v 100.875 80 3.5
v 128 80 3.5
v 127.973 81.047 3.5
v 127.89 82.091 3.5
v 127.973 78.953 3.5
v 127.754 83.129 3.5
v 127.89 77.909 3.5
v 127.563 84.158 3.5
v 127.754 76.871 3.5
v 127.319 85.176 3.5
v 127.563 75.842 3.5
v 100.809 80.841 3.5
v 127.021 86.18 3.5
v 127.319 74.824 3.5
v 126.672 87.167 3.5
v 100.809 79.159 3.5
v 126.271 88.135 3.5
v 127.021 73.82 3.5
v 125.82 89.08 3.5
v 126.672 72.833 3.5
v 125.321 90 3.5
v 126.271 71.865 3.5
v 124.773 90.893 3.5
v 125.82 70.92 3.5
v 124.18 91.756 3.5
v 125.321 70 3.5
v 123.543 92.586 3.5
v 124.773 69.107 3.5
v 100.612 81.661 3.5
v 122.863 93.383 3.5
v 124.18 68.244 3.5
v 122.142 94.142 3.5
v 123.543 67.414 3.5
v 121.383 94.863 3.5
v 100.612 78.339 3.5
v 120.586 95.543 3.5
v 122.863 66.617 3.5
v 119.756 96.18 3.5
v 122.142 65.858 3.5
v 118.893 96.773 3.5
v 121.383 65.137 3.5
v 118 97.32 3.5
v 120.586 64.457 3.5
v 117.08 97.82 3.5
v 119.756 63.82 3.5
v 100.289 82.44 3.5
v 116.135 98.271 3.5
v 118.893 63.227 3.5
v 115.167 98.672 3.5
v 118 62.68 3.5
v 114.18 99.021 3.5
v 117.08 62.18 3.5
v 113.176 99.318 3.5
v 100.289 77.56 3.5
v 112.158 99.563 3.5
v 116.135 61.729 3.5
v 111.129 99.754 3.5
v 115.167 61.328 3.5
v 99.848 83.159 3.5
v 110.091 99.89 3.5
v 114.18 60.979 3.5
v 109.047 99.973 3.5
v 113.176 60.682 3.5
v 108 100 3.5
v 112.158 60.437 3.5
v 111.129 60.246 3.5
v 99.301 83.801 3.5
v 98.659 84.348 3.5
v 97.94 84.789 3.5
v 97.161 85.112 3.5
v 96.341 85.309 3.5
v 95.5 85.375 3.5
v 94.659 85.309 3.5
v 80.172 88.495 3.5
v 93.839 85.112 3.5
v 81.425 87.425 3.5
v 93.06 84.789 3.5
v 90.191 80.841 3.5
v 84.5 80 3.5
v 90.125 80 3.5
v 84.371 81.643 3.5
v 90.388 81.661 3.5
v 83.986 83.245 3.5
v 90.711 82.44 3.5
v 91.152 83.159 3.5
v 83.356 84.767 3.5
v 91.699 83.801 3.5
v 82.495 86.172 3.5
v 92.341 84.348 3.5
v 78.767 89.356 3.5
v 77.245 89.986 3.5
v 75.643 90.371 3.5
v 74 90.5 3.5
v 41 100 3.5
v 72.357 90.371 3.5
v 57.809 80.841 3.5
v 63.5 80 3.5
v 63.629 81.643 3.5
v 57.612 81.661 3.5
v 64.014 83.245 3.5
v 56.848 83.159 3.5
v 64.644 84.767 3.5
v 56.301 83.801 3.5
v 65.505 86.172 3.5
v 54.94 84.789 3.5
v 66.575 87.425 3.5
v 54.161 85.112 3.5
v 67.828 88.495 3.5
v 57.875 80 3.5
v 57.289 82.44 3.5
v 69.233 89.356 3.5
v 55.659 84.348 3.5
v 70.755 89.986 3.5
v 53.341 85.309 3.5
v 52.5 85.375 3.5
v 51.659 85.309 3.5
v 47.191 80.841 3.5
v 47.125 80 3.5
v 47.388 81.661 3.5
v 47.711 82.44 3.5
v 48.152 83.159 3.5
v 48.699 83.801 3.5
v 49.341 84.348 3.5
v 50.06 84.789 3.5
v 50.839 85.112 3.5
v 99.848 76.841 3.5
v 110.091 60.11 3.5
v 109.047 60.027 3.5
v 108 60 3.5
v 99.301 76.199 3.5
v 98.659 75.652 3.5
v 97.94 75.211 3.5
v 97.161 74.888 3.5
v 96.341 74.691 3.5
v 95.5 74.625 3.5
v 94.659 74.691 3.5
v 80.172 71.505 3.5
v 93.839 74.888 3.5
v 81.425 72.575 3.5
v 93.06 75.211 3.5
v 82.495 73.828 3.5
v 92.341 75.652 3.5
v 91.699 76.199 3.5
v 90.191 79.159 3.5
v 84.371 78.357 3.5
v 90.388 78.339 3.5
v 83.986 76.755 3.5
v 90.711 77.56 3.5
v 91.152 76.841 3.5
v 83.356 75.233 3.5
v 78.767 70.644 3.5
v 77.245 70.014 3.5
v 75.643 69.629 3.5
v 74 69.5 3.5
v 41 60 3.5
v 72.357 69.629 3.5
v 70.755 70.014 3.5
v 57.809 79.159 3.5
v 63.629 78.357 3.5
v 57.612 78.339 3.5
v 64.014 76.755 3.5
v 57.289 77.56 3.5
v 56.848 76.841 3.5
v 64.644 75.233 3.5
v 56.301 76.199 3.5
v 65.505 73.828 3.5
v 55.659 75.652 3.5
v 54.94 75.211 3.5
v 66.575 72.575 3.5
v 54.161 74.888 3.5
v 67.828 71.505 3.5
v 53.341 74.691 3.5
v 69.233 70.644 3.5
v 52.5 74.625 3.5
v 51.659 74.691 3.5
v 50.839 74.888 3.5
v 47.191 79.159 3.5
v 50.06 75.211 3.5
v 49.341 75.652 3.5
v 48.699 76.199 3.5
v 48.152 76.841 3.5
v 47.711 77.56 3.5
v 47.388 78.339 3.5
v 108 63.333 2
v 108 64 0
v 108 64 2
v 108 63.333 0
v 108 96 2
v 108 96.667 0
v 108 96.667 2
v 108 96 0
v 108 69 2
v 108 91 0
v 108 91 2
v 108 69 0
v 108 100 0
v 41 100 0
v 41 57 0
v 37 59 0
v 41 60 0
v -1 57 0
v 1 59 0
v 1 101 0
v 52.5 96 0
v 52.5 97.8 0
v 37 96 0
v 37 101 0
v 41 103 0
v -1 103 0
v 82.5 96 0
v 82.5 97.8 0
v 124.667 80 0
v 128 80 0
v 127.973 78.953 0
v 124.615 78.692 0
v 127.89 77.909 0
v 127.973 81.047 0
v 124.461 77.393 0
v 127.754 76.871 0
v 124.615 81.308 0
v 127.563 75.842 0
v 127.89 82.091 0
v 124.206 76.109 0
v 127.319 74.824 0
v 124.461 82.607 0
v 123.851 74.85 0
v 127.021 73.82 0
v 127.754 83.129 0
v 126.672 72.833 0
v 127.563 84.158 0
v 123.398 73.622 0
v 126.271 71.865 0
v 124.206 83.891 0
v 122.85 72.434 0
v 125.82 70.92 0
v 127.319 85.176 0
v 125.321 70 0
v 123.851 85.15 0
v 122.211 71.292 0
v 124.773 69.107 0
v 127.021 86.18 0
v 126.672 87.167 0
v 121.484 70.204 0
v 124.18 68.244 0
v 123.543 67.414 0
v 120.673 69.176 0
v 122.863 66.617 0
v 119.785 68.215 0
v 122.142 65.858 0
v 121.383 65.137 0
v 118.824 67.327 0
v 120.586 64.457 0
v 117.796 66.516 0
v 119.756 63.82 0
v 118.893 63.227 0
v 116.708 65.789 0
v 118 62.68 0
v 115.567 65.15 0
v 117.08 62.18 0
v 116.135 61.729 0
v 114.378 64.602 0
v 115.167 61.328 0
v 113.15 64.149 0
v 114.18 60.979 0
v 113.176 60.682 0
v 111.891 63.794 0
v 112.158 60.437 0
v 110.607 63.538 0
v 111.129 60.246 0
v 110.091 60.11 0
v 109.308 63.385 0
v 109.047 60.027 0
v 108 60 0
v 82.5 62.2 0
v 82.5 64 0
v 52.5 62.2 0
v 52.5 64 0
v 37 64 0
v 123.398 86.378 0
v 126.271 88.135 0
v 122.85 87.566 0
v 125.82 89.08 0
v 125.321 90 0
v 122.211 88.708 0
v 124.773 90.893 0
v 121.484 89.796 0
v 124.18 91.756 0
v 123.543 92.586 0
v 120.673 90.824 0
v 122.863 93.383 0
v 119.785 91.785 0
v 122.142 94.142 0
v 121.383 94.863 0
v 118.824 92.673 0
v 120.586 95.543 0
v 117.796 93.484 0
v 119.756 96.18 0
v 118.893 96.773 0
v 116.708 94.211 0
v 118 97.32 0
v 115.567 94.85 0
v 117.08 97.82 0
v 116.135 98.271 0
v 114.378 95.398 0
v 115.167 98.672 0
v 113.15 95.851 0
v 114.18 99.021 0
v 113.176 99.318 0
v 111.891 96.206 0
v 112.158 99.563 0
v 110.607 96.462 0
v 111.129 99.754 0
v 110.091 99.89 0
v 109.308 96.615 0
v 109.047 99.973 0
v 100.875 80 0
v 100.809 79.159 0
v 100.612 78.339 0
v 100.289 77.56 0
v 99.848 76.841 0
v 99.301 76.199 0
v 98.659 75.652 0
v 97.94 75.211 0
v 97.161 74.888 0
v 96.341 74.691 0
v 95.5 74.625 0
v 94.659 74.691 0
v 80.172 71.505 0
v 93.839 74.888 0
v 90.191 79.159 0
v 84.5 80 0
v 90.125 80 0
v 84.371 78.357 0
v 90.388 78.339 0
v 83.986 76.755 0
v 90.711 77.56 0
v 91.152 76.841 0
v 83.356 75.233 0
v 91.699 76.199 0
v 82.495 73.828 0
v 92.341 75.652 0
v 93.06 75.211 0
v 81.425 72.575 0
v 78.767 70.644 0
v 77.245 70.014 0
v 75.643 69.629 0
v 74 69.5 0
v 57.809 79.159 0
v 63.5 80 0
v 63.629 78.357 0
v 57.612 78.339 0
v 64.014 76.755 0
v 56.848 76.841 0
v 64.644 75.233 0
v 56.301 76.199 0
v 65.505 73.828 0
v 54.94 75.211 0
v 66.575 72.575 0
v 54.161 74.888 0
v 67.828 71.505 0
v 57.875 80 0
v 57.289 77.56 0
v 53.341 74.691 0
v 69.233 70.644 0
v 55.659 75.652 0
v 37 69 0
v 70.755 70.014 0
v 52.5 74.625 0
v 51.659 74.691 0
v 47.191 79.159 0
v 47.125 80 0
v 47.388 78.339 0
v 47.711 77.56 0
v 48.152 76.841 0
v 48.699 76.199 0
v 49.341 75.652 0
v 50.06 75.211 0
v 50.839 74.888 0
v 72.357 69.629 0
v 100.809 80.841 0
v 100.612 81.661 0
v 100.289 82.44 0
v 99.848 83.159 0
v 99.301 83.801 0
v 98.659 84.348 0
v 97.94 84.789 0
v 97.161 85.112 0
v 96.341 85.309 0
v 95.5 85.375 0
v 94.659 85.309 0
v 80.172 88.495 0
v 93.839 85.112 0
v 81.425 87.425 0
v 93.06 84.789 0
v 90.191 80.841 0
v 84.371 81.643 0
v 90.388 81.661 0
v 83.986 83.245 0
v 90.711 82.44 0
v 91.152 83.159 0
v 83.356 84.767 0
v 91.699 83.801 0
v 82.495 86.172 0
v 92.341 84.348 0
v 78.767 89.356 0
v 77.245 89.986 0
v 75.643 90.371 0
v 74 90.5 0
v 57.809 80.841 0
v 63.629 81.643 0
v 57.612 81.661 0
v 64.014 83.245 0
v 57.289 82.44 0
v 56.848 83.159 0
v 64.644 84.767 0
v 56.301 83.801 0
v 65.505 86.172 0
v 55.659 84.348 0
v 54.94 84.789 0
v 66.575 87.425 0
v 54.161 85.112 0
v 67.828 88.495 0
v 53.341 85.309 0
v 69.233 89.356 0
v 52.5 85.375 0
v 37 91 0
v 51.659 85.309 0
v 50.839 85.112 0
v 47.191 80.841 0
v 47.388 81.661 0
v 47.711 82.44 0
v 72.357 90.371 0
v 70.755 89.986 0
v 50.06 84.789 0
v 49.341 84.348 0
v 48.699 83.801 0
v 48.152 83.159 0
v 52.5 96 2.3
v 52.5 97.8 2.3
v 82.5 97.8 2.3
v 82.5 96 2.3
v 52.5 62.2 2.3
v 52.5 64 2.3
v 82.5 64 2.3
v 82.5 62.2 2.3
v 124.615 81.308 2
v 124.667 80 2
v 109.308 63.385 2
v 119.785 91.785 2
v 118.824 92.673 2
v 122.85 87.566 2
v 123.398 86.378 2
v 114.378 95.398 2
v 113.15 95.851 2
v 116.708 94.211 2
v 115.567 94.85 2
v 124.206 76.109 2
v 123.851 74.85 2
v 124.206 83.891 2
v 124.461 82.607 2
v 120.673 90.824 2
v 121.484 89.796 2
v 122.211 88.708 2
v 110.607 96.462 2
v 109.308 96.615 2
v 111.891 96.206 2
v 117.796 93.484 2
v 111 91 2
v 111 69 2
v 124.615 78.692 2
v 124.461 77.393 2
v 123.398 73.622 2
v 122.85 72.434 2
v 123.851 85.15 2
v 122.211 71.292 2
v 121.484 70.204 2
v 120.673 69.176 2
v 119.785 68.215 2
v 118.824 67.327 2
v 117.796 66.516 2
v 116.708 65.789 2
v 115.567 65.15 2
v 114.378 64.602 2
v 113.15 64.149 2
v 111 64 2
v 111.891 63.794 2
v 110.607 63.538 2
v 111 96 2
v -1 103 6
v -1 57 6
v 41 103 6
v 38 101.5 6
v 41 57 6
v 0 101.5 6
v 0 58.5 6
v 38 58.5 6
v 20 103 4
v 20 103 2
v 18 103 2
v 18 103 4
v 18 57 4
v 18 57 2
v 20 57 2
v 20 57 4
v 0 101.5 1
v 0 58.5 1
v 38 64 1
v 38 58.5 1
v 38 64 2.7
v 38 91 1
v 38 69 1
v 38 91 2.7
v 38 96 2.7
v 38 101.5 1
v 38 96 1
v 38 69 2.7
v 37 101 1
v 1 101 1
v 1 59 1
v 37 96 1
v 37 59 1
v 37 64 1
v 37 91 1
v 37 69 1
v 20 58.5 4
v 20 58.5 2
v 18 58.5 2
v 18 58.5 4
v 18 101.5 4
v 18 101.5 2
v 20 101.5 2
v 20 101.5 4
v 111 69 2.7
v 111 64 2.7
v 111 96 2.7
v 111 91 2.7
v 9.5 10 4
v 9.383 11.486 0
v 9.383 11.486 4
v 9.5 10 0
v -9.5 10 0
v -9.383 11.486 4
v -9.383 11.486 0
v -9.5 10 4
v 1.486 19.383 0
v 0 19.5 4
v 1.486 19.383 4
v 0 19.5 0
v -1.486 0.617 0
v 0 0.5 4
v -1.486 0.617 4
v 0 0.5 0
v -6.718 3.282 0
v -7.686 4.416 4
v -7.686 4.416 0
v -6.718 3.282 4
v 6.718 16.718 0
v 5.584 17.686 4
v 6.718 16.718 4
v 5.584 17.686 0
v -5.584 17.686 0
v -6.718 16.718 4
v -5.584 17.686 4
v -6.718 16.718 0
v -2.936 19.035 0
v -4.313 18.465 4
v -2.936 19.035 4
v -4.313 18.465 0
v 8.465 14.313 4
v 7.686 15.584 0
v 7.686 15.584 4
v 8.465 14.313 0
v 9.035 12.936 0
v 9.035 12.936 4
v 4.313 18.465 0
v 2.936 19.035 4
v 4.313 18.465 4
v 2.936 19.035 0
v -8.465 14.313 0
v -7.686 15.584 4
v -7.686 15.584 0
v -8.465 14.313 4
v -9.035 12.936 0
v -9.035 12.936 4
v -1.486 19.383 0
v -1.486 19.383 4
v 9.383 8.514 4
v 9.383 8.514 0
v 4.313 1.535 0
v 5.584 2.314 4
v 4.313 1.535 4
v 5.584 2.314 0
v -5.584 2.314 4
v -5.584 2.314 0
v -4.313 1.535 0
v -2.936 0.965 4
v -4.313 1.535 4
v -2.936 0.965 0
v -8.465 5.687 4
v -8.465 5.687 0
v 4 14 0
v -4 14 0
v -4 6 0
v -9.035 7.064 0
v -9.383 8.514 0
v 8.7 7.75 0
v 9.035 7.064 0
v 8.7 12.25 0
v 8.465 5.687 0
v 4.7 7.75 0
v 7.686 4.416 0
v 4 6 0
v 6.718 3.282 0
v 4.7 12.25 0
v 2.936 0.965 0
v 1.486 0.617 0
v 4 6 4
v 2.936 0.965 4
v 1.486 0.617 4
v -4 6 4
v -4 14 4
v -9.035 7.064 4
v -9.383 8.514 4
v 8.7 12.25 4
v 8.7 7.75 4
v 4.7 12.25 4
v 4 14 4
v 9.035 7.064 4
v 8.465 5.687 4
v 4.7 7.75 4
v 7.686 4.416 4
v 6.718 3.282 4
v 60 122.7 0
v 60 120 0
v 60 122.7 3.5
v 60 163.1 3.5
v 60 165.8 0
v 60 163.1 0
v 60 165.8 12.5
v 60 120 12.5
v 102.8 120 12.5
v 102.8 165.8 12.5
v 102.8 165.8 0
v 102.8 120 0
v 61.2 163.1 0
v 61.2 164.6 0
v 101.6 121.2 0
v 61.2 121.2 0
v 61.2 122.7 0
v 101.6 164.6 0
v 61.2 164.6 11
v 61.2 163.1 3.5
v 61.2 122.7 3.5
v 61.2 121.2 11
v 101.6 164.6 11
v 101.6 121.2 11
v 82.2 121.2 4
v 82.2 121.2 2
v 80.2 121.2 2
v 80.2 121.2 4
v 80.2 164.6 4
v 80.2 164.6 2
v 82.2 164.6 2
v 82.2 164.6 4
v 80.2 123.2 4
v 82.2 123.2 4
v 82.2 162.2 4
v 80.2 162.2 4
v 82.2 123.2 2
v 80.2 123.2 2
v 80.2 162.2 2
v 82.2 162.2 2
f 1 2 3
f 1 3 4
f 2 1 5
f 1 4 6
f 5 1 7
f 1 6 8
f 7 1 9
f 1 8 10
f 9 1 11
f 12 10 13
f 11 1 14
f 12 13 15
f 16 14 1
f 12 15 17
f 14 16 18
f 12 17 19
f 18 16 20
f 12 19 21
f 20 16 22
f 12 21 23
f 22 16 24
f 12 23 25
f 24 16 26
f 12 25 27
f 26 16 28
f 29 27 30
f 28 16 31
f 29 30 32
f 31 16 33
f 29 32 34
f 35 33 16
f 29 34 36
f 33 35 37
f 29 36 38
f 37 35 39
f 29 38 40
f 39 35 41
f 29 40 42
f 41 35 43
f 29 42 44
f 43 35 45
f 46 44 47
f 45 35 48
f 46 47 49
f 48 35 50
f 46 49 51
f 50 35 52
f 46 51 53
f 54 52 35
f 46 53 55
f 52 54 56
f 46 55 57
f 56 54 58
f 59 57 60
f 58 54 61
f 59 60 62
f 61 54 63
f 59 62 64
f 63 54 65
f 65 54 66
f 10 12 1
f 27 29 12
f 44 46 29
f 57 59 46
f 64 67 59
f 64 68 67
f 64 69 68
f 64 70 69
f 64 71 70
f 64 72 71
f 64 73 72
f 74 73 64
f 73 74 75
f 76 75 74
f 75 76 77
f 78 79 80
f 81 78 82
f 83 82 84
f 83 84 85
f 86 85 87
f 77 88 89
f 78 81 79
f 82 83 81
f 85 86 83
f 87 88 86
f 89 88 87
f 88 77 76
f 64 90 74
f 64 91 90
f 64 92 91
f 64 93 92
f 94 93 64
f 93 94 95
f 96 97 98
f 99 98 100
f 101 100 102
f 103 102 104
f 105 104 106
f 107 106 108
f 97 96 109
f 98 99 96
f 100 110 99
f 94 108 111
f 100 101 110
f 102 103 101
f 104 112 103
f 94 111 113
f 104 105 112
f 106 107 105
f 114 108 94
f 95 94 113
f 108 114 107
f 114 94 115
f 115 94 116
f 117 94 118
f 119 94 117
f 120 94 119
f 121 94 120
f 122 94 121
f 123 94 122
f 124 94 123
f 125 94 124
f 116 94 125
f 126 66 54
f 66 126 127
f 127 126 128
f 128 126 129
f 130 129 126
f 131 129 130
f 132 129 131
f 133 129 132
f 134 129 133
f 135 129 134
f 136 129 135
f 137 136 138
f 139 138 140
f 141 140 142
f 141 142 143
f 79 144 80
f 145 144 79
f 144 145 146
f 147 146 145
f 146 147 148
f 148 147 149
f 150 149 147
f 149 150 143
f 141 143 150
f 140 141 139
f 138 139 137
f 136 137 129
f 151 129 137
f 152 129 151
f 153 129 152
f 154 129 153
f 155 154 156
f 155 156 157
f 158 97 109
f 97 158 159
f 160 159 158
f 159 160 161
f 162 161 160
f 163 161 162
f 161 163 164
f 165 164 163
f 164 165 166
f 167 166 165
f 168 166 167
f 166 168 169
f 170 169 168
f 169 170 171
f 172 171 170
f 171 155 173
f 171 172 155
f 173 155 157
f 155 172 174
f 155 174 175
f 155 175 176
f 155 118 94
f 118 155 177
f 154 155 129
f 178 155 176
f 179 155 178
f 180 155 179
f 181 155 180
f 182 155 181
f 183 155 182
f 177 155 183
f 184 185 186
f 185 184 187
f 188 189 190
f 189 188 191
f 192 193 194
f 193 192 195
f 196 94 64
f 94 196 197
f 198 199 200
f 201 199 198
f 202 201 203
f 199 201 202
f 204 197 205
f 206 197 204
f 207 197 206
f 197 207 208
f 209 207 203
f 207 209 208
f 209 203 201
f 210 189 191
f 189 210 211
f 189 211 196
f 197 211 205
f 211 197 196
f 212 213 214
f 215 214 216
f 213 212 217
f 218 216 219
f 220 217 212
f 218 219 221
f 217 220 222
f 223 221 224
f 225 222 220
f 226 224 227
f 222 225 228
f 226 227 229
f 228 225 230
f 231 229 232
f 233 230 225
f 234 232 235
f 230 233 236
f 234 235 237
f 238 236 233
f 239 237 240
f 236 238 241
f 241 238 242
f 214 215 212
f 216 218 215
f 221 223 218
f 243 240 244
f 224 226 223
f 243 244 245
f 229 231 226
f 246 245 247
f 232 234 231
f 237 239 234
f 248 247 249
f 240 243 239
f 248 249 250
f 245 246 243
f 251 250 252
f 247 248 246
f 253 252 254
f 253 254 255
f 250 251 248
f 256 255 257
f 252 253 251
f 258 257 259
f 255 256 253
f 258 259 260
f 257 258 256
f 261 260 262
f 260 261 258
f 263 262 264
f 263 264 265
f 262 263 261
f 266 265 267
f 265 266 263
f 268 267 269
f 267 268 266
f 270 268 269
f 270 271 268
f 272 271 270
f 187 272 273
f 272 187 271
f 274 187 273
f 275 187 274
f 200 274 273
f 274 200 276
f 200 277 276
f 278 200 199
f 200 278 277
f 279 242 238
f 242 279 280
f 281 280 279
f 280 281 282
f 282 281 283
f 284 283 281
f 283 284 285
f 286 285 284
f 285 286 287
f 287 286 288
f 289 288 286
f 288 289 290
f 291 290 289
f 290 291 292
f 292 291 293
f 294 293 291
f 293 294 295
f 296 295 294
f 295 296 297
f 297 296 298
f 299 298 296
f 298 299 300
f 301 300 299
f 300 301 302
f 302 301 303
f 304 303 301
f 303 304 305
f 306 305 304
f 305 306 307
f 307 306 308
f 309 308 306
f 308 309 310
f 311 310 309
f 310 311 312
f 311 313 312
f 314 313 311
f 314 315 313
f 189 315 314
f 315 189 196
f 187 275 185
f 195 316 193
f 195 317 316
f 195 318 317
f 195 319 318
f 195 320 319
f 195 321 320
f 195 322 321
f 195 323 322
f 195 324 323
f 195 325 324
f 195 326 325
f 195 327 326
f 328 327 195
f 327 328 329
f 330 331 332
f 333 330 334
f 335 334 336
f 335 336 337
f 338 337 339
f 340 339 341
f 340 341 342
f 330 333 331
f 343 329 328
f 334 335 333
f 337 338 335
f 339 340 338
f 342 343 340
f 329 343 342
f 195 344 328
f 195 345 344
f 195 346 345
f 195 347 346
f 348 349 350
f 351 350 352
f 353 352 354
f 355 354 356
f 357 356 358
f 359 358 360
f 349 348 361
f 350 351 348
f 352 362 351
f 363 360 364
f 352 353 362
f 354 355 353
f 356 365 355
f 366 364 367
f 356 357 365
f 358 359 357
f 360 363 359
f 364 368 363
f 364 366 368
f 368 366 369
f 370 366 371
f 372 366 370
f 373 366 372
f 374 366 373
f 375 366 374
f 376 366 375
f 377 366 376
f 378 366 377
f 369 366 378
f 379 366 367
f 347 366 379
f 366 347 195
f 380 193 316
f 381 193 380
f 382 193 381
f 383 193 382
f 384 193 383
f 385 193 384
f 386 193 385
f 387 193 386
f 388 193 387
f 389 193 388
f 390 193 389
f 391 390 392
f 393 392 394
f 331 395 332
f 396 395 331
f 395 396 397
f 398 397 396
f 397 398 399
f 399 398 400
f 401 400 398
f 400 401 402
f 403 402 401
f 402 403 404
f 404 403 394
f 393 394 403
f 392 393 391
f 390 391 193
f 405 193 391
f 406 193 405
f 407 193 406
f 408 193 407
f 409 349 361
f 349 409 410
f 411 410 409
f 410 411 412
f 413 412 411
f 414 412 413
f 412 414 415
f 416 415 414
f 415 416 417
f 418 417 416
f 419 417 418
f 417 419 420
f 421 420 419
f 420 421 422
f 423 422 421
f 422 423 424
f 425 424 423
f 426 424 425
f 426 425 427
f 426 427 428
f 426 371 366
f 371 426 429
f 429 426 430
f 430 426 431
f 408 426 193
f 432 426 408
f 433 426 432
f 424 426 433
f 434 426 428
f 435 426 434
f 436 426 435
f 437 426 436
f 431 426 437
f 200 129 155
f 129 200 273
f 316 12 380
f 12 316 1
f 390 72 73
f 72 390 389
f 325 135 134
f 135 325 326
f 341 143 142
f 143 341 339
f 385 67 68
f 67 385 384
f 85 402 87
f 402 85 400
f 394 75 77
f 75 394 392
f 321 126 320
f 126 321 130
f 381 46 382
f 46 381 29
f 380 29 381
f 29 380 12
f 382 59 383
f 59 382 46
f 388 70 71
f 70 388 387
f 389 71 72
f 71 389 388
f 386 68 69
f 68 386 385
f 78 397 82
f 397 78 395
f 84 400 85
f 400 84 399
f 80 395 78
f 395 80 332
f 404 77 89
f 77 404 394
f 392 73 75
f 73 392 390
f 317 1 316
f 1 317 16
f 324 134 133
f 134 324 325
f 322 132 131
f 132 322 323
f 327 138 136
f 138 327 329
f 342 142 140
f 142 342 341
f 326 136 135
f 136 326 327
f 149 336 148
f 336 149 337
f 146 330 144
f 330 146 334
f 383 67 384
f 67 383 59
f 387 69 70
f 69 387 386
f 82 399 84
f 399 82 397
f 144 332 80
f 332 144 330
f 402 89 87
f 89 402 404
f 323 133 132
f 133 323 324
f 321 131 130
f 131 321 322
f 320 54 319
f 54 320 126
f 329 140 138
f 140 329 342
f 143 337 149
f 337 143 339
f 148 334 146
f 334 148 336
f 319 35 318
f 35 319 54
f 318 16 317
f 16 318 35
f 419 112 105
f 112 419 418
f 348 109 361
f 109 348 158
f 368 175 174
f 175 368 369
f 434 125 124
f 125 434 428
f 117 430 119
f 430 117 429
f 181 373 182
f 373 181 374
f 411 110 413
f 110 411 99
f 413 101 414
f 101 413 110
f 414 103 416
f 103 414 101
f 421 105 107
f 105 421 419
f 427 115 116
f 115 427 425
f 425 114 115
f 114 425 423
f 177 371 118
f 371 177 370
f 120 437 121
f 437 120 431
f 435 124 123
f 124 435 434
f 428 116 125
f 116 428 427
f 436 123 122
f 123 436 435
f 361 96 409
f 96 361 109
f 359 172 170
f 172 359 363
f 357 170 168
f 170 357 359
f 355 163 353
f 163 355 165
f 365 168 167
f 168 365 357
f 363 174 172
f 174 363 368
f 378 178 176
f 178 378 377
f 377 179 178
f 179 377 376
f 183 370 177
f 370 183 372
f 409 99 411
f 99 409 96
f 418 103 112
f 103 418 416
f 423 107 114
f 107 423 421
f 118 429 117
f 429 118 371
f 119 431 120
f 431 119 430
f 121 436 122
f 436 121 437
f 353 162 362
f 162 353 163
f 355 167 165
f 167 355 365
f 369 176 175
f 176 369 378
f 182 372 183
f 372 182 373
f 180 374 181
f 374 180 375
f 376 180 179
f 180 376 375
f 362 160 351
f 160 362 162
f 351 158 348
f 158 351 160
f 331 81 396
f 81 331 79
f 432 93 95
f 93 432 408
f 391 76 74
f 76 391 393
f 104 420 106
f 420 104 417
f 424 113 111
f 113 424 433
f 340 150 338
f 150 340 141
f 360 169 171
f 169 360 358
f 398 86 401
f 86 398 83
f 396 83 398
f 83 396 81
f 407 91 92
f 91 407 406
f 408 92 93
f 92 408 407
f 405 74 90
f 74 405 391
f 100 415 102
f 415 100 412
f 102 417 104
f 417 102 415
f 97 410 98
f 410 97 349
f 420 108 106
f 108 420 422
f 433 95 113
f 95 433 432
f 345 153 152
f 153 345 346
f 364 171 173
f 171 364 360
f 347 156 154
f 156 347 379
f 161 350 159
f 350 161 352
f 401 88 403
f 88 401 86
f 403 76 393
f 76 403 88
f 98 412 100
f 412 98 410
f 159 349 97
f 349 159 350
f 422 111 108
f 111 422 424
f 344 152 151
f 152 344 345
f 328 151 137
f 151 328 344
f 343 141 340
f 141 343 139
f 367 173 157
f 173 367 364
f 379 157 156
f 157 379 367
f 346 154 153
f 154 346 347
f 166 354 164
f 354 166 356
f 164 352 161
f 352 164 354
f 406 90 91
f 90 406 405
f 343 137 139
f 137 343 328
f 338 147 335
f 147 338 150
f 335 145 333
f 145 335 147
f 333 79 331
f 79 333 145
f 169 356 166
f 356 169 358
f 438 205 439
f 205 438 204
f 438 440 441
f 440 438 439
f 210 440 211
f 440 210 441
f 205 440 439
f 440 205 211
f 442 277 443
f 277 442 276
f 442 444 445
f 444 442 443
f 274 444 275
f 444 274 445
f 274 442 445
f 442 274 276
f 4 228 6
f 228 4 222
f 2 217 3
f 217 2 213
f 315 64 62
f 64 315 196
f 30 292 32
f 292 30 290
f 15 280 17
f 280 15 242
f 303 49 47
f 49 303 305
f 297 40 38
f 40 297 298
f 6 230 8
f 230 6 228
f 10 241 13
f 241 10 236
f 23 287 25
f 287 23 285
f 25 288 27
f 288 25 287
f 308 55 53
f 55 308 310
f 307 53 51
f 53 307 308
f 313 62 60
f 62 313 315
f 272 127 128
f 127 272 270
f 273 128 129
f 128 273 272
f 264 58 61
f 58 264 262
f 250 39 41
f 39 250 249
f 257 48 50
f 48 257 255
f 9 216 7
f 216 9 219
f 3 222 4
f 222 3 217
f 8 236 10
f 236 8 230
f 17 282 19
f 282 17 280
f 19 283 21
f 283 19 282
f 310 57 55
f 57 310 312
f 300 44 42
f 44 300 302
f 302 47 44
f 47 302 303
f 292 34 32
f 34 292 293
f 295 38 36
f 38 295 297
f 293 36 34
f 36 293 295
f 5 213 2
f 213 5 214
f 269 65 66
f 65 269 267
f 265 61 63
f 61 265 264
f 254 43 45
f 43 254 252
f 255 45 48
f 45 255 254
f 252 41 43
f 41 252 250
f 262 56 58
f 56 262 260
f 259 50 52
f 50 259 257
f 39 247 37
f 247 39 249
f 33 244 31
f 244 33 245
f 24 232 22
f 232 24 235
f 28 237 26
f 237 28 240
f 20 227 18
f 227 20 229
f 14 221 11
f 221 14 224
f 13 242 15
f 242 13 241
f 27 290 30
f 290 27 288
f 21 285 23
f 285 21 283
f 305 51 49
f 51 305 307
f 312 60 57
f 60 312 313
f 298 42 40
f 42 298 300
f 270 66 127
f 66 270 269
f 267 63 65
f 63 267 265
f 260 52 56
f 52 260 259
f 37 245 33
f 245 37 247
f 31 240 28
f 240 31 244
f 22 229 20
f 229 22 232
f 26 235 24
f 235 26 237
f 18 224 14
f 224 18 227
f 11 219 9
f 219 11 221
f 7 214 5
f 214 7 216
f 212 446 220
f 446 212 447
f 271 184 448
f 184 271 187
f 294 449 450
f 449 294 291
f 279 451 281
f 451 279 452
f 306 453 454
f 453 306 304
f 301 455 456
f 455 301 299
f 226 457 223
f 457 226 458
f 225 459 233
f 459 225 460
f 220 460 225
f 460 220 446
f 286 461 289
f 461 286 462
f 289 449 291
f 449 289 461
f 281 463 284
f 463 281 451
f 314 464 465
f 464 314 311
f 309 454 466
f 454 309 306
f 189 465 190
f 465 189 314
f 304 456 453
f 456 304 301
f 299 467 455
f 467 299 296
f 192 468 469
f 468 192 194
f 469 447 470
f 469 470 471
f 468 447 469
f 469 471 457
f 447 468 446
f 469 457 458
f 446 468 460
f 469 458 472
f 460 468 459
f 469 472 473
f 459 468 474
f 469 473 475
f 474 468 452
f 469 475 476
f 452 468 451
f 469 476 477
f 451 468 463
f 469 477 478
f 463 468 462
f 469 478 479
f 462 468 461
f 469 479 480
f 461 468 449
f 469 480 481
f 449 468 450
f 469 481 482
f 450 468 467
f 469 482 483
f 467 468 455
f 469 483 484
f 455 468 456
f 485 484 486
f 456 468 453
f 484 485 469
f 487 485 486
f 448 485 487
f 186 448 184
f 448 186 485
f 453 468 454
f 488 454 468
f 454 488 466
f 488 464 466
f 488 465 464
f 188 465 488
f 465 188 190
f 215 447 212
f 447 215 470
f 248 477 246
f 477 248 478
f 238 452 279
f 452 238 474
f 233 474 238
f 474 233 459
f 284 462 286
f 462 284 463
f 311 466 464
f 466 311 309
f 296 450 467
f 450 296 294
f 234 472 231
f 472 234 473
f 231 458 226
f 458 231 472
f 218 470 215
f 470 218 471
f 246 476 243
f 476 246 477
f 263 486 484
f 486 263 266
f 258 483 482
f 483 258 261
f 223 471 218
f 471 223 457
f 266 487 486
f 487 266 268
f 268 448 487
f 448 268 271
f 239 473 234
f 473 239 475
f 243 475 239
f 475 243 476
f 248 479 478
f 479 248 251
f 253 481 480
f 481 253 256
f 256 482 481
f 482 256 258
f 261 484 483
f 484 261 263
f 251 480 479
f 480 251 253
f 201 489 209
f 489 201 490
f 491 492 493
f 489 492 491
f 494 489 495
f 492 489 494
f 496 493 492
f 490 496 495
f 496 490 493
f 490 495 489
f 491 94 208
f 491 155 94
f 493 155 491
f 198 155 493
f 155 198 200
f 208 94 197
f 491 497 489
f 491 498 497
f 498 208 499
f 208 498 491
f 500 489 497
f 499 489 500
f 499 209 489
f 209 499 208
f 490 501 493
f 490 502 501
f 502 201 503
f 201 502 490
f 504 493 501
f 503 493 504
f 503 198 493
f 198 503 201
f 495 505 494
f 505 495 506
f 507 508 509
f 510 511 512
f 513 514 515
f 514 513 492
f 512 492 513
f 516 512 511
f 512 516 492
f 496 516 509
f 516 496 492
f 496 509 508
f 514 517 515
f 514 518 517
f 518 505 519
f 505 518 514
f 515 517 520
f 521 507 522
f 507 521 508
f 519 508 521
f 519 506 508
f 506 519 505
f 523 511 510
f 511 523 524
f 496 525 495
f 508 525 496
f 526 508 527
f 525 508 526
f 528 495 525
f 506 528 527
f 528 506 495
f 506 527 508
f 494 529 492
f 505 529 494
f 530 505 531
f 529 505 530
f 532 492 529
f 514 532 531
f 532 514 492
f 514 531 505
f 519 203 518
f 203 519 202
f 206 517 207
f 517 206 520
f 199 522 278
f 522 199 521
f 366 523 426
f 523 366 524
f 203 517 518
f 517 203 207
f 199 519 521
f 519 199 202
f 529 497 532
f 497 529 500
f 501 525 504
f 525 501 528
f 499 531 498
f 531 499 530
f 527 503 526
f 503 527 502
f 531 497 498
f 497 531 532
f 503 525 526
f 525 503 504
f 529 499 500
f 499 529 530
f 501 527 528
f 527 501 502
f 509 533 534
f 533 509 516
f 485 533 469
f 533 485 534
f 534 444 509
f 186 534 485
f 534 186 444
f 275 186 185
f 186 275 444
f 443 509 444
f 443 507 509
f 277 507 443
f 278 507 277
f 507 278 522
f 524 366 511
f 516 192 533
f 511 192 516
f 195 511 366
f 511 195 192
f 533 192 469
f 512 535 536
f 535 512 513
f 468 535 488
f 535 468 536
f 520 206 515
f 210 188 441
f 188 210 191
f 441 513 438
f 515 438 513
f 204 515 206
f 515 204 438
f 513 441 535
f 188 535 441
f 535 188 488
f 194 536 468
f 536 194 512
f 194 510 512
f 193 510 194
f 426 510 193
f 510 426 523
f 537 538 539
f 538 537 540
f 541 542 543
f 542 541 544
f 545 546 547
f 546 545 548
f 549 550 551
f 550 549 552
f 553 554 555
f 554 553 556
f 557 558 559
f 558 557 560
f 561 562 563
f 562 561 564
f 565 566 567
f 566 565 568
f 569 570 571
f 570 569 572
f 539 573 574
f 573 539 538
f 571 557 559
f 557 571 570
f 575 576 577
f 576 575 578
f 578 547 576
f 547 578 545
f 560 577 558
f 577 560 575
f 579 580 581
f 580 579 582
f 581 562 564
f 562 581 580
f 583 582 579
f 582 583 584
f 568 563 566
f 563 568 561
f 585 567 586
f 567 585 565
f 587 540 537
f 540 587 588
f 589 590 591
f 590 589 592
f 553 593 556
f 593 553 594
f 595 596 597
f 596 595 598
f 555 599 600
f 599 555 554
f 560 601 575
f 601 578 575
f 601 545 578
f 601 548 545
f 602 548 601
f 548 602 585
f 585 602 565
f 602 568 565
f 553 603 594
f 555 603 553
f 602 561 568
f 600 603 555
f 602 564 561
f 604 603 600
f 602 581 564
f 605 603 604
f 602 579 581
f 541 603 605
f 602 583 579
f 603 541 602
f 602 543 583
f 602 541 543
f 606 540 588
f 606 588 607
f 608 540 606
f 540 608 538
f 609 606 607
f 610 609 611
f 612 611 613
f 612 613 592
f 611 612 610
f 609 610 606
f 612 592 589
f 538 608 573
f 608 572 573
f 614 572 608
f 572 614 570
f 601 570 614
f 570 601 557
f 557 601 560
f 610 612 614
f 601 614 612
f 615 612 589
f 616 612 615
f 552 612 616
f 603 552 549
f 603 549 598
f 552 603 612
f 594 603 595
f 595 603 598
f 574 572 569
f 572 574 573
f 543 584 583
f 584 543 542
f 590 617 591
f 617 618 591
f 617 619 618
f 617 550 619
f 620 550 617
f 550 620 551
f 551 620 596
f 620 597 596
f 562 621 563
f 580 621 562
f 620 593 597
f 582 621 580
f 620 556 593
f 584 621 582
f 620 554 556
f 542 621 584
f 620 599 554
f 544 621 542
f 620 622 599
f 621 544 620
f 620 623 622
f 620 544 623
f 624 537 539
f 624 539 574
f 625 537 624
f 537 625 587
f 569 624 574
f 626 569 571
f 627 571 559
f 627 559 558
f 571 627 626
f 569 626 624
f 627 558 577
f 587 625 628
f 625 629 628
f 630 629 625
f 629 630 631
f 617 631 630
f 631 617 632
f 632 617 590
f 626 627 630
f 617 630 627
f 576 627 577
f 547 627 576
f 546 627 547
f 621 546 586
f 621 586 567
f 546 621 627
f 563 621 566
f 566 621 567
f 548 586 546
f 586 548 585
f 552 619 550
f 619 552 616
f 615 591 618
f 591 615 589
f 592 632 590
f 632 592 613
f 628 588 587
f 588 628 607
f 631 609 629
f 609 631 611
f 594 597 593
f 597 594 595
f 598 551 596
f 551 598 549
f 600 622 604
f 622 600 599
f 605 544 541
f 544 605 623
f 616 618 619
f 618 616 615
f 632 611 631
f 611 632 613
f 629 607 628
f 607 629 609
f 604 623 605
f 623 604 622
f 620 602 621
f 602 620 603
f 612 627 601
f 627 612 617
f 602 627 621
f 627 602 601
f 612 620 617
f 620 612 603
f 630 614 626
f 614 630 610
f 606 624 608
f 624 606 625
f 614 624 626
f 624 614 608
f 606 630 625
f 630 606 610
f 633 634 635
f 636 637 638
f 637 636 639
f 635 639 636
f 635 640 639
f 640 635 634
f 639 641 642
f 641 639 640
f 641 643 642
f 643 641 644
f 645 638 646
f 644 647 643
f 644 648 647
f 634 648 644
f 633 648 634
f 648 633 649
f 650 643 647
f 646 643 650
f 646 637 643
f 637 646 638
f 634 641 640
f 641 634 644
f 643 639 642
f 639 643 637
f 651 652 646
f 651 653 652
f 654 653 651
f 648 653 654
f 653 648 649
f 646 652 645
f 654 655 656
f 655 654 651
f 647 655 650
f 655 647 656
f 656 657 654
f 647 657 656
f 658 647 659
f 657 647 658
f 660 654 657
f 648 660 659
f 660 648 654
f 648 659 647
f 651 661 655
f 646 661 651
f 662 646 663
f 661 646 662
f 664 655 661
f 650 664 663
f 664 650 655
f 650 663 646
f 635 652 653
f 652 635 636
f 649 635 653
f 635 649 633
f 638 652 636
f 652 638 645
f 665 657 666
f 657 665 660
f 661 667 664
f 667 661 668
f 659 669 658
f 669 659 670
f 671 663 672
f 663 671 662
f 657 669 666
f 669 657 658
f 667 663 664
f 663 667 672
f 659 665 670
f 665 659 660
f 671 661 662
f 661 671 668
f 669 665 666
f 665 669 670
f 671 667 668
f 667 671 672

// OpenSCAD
VIERKANT = 7.5;
BREITE = 40;
HOEHE = 68;
BOHRUNGEN = 10.75;

module inlay() {
	difference(){
		cylinder($fn=40, h=4, r=((32/2) - 6.5));
		cube([(VIERKANT + 0.5), (VIERKANT + 0.5), 10], center=true);
		translate([(((32/2)-6)- 3.3), 0, 0]) {
			cube([4, 4.5, 10], center=true);
		}
	}
}

module box() {
    difference() {
        cube([HOEHE, BREITE, 3.5]);
        // Bohrung unten
		translate([(HOEHE - ((HOEHE - 43) / 2)), (BREITE / 2), -1]) {
			cylinder($fn=40 ,h=7, r=(BOHRUNGEN / 2));
		}       
        // Bohrung oben
		translate([((HOEHE - 43) / 2), (BREITE / 2), -1]) {
			cylinder($fn=40, h=6, r=(BOHRUNGEN / 2));
		}
        // Mitte
        translate([((43/2)+((HOEHE-43)/2)),(BREITE/2),-1]) {
			cylinder($fn=40, h=10, r=10.5);
		}
        //Reed Contact
        translate([ (HOEHE-43)/2, (BREITE - 2.2 - 3), -1]) {
            cube([30, 3, 3.3]);
		}
        //Reed Contact
        translate([ (HOEHE-43)/2, 2.2, -1]) {
			cube([30, 3, 3.3]);
		}
    }
}


translate([40, 60, 0]) {
    difference() {
        union() {
            box();
            // Rundung oben
            translate([HOEHE, BREITE / 2, 0]) {
                difference() {
                    cylinder($fn=120, r=BREITE / 2 , h=3.5);
                    translate([-BREITE, - BREITE / 2,-1]) cube([BREITE, BREITE, 10]);
                    translate([0, 0, -1]) cylinder($fn=80, r=BREITE / 2.4 , h=3);
                }
            }
            translate([-41, -3, 0]) {
                difference() {
                    cube([42, 46, 6]);
                    translate([1, 1.5, 1]) {
                        cube([38, 43, 10]);
                    }
                    translate([2, 2, -1]) {
                        cube([36, 42, 5]);
                    }
                    translate([40/2 +1 , -10, 2]) {
                        rotate([0, 0, 90]) cube([60, 2, 2]);
                    }
                }
            }
        }
        translate([-4, 4, -1]) {
            cube([75, 5, 3.7]);
        }
        translate([-4, 31, -1]) {
            cube([75, 5, 3.7]);
        }
    }
    
}


translate([0, 10, 0]) {
    inlay();
}



module deckel() {
    D_BREITE = 40;
    D_HOEHE = 43;
    D_TIEFE = 11;

    union() {
        difference() {
            cube([D_BREITE + 2.8, D_HOEHE  + 2.8,  D_TIEFE + 1.5]);
            translate([1.2, 1.2, 0]) {
                cube([D_BREITE + 0.4, D_HOEHE + 0.4,  D_TIEFE]);
            }
            translate([-1, 1.5 + 1.2, 0]) {
                cube([4, 40 +0.4, 3.5]);
            }
        }
        difference() {
            translate([40/2 + 1.2 +1 , 0, 2]) {
                rotate([0, 0, 90]) cube([D_HOEHE + 2.4,, 2, 2]);
            }
            translate([1.2, 1.2 +2, 0]) {
                cube([D_BREITE, D_HOEHE-4,  D_TIEFE +1]);
            }
        }
    }
}


translate([60, 120, 0 ]) {
    deckel();
}
